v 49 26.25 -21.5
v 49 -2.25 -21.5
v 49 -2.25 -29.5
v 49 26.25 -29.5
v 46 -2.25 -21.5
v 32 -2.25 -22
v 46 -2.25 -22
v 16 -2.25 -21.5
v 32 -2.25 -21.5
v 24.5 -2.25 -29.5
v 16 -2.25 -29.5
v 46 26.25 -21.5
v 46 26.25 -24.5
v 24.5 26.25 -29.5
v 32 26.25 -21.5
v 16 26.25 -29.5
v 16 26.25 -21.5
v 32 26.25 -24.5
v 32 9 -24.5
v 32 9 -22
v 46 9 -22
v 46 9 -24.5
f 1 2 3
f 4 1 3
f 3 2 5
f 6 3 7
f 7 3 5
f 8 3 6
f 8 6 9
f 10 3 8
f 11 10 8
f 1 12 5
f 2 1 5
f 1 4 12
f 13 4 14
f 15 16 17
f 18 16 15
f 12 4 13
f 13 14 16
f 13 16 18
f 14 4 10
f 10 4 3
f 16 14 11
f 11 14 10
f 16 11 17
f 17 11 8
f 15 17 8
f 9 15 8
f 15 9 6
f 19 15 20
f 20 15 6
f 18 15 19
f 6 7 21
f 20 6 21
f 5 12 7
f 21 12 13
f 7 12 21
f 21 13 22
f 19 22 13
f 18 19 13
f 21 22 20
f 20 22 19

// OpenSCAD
/* Hive13 SumoBot Chassis/Frame */ 

// The front plow takes up a depth of 16.
// Some space is used for linesensor screw holes ~14mm

max_w = 98;
max_d = 98 - 16;

batterypack_w = 63;
batterypack_h = 15;
batterypack_d = 49;

bpack2_w = 54;
bpack2_h = 11;
bpack2_d = 31;

micro_w = 70;
micro_h = 15; // We just go to the top of the shield
micro_d = 54;

frame_w = max_w;
frame_h = 3;
frame_d = max_d;

// tire + motor thickness ~30 
wheel_radius = 15.5;
wheel_thickness = 14;
motor_w =14;
motor_h = 54;
motor_d = 20;
lip_w = motor_w;
lip_h = 18;
lip_d = 25;
lip_dist_from_bottom_motor = 36;
tire_distance = 9;
offset_w =2;
wheel_position=10; 
clearance_ground=2;

tab_plow_d=10;// tab to connect to screw in with the plow
linesensor_spacing = 18;
linesensor_depth = 23;
frame_wheel_d = 36;
wheel_clearance = 17;
backwall_thickness = 15;

module baseframe() {
difference() {
union() {
cube([frame_w, frame_d, frame_h]);
// mounting tabs
translate(v=[(frame_w - bpack2_d) /2, frame_d, 0]) {
difference() {
cube([bpack2_d,10 , frame_h+6]);
translate(v=[5, 5, 0]) {
cylinder(r = 2, h=frame_h+6);
}
translate(v=[bpack2_d-5, 5, 0]) {
cylinder(r = 2, h=frame_h+6);
}
}
}
//translate(v=[frame_w-linesensor_spacing-10, frame_d, 0]) {
//difference() {
// cube([10, 10, frame_h]);
// translate(v=[5, 5, 0]) {
// cylinder(r = 2, h=frame_h);
// }
//}
// }
// Wheel/Motor holder block
difference() // subtract out overhangs and wire section
{//Motor holder both sides.....
translate(v = [0,frame_wheel_d+1,frame_h]) {
cube([frame_w, frame_d -(frame_wheel_d + linesensor_depth)-2,motor_d-1+offset_w]);// replace batterypack_h + bpack2_h + micro_h by motor_d -1
}
// Removes space over motors
// translate(v = [2,frame_wheel_d+1,frame_h +bpack2_h]) {
// cube([motor_w, frame_d -(frame_wheel_d + linesensor_depth-1), batterypack_h + micro_h]);
// }
//translate(v = [frame_w-motor_w-2,frame_wheel_d+1,frame_h +bpack2_h]) {
// cube([motor_w, frame_d -(frame_wheel_d + linesensor_depth-1), batterypack_h + micro_h]);
// }
// Remove area over batterypacks
translate(v = [(frame_w + batterypack_d) / 2, frame_d-batterypack_w, frame_h+bpack2_h+wheel_clearance]) {
rotate([0,0,90]) {
batterypack();
}
}

translate(v = [(frame_w + bpack2_d) /2,frame_d-bpack2_w,frame_h]) {
rotate([0,0,90]) {
//bpack2();
cube([bpack2_w, bpack2_d, bpack2_h+wheel_clearance]);
}
}
translate(v = [(frame_w - micro_d) / 2, frame_d-batterypack_w, frame_h+bpack2_h+batterypack_h+wheel_clearance]) {
cube([micro_d, batterypack_w, 40]);
}

}
// Backwall
translate(v=[(frame_w + bpack2_d+10) /2-bpack2_d,frame_d-bpack2_w-backwall_thickness-2,frame_h]) {
cube([bpack2_d-10, backwall_thickness, bpack2_h+wheel_clearance]);
}
// Backwall second piece
translate(v = [(frame_w + bpack2_d)/2-bpack2_d,10,frame_h]) {
cube([bpack2_d, 7, bpack2_h+micro_h+batterypack_h]);
}
} // union


// Remove linesensor area
translate(v = [0,frame_d-linesensor_depth,0]) {
cube([linesensor_spacing, linesensor_depth, frame_h]);
}
translate(v = [frame_w - linesensor_spacing,frame_d-linesensor_depth,0]) {
cube([linesensor_spacing, linesensor_depth, frame_h]);
}
// Remove tires
translate(v = [0,0,0]) {
cube([motor_w + wheel_thickness + 4, frame_wheel_d, frame_h]);
}
translate(v = [frame_w-motor_w-wheel_thickness-4,0,0]) {
cube([motor_w + wheel_thickness + 4, frame_wheel_d, frame_h]);
}
// Remove unneeded space in the back
translate(v =[(frame_w + bpack2_d-5) /2-bpack2_d,0,0]) {
cube([bpack2_d+10, 10, frame_h]);
}
// Remove a hole for power switch
translate(v = [frame_w-linesensor_spacing-15,frame_d-linesensor_depth,0]) {
cube([15, 23, frame_h]);
}
// This one is mainly for looks
translate(v = [linesensor_spacing,frame_d-linesensor_depth,0]) {
cube([15, 23, frame_h]);
}
// Remove the wheels
// Right Tire
translate(v = [max_w-2, 7,-motor_d+22+offset_w]) {
rotate(a = [270, 180, 0]) {
motor();
}
}
// Left Tire
translate(v = [2, 7, 22+offset_w]) {
rotate(a = [270, 0, 0]) {
motor();
}
}

} // difference
}

module batterypack() {
color([0, 127, 127, 255]) {
cube(size=[batterypack_d, batterypack_w, batterypack_h],center=true);
}
}

module bpack2() {
color([127,127,0,255]) {
cube([bpack2_w, bpack2_d, bpack2_h]);
}
}

module micro() {
cube([micro_w, micro_d, micro_h]);
}

module motor() {
color([0,0,0,255]) {
union() {
cube(size=[motor_w, motor_h, motor_d], center = true );
// Lip
translate(v = [0, lip_dist_from_bottom_motor-lip_h, 0]) {//[0, -(lip_d-motor_d)/2, lip_dist_from_bottom_motor]
cube(size=[lip_w, lip_h, lip_d],center=true);
}
// wheel
translate(v = [-motor_w,-(motor_h-wheel_position)/2,0]) {//[motor_w,motor_d/2,motor_d/2]
rotate(a = [0, 90, 0]) {
cylinder(r = wheel_radius, h = wheel_thickness, center=true);
}
}
}
}
}


//
//translate(v =[0,0,6]) {
//baseframe();
//}

// NEW START WITH CENTERED DESIGN //

rotate(a=[0,180,0]){
difference(){
union(){
//motor top holder 
translate(v=[0,12,frame_h/2+(bpack2_h+wheel_clearance)/2]){
cube(size=[frame_w,motor_h-lip_h-wheel_radius-wheel_position+lip_h,bpack2_h+wheel_clearance], center=true);}
}//union end
//start removing 
//motors
translate(v=[(frame_w-motor_w)/2-3,0,wheel_radius-frame_h/2-clearance_ground]){
rotate(a=[0,0,0]){
motor();}}
mirror ([1,0,0]) {
translate(v=[(frame_w-motor_w)/2-3,0,wheel_radius-frame_h/2-clearance_ground]){
rotate(a=[0,0,0]){
motor();}}}
// big battery
translate(v=[0,0,frame_h/2+(bpack2_h+micro_h+batterypack_h)/2+batterypack_h]){
batterypack();}
//center piece between wheels
translate(v=[0,0,frame_h/2+ (bpack2_h+wheel_clearance)/2]){
cube(size=[bpack2_d+1, bpack2_w, bpack2_h+wheel_clearance],center=true);}
//motor holder
translate(v=[0,12,(motor_d+frame_h)/2]){
cube(size=[frame_w,motor_h-lip_h-wheel_radius-wheel_position+lip_h,motor_d], center=true);}// replace batterypack_h + bpack2_h + micro_h by motor_d -1
translate(v=[(frame_w-motor_w)/2-3,0,wheel_radius-frame_h/2-clearance_ground]){
cube(size=[50,55,50],center=true);}
}//difference end
}//rotate end
